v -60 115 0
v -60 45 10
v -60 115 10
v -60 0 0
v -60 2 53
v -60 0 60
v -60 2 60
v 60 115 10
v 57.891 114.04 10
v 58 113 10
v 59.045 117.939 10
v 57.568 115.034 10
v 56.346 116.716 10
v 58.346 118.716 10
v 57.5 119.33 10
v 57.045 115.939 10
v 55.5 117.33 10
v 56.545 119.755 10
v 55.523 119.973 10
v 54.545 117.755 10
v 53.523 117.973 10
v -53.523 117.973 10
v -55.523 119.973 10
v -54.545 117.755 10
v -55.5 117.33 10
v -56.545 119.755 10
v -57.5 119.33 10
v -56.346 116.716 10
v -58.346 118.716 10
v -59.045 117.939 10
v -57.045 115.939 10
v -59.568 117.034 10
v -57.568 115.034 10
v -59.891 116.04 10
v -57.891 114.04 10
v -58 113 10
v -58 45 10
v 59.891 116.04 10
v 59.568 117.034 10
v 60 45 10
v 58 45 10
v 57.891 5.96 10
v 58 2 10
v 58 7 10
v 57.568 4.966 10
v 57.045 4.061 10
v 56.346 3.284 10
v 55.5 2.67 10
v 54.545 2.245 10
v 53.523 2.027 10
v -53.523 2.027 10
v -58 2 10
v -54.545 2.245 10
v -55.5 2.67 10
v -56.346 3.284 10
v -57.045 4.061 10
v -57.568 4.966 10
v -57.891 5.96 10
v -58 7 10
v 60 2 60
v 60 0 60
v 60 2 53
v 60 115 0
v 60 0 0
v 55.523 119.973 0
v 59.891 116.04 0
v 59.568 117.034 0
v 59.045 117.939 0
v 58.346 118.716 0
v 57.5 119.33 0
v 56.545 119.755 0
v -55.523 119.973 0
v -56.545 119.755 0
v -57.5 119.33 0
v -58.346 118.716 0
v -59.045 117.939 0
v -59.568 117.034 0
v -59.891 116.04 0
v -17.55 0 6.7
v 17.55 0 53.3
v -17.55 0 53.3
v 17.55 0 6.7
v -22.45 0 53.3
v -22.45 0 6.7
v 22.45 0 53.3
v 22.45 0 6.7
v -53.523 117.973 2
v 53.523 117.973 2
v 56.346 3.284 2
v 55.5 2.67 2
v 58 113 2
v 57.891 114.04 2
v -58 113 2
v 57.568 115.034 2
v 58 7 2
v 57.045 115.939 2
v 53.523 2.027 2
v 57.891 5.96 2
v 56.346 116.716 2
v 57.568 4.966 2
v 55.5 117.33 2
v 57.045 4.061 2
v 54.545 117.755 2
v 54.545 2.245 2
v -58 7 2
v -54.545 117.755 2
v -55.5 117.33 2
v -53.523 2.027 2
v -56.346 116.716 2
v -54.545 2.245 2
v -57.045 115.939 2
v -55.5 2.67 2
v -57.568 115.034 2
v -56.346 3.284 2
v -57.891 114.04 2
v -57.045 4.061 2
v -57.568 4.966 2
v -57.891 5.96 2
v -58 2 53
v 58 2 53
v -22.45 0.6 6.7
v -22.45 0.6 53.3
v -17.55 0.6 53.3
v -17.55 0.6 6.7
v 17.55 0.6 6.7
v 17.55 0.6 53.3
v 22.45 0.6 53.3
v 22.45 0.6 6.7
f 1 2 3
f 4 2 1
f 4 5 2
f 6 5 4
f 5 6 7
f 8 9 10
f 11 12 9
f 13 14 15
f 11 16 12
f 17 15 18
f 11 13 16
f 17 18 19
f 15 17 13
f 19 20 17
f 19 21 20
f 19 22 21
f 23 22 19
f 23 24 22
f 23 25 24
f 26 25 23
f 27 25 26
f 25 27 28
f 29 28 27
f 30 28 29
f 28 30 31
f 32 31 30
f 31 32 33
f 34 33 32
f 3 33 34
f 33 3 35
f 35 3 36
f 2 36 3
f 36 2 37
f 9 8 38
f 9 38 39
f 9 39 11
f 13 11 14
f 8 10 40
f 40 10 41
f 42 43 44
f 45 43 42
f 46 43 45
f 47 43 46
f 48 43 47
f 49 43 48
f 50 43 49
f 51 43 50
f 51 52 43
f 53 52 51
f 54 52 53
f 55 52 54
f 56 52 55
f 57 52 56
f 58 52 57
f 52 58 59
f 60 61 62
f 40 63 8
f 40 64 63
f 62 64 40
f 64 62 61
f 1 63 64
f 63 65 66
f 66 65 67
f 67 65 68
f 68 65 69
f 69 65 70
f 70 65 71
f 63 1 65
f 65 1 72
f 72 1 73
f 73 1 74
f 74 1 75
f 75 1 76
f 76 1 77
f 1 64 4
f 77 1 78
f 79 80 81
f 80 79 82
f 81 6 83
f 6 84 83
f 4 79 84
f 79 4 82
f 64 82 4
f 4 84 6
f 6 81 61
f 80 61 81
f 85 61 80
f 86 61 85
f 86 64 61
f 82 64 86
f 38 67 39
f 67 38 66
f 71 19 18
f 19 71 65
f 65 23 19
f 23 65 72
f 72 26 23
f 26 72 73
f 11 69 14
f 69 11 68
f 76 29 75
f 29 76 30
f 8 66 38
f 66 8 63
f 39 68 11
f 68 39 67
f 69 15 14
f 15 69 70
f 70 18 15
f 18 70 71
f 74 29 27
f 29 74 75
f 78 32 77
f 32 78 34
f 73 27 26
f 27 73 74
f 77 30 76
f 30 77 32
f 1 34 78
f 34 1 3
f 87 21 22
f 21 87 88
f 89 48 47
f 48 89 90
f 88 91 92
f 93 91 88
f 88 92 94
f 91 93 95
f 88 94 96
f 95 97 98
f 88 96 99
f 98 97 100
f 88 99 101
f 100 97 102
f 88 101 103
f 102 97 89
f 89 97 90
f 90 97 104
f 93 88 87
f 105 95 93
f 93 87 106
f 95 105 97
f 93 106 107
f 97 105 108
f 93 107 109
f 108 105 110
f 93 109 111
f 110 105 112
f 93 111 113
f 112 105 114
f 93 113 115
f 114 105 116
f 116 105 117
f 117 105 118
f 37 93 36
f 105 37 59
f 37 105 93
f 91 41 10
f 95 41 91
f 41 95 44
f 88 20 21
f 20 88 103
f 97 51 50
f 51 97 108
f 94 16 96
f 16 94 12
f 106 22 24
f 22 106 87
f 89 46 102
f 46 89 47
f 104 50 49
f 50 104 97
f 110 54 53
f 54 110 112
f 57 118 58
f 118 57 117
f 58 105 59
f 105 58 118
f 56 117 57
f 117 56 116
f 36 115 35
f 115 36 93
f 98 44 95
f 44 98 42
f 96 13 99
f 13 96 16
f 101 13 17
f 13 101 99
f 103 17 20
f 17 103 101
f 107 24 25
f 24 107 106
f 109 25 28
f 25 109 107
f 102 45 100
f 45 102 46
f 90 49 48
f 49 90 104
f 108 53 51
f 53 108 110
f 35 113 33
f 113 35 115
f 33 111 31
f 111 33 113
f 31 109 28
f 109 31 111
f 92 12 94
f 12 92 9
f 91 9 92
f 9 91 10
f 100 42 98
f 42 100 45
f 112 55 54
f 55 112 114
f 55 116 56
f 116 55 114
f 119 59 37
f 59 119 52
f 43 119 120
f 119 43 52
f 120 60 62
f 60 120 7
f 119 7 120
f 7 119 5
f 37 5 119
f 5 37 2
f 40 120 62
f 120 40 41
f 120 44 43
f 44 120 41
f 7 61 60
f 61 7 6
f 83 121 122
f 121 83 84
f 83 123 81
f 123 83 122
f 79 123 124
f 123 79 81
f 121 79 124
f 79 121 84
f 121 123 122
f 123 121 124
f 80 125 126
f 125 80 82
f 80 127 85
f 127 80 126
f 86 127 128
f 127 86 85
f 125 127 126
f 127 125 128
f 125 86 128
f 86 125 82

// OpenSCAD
// file: IKEA Skadis v2 hook cutouts.scad
skadis_hook_width = 4.5;
skadis_hook_height = 46;
skadis_hole_spacing_width = 40; // middle to middle
cutout_tolerance_w = 0.4;
cutout_tolerance_h = 0.6;


module skadis_hook_cutout(center=false, hook_count=2) {
    
    if(center) {
        translate([-(skadis_hole_spacing_width + skadis_hook_width) / 2, 0, - skadis_hook_height / 2])
        object(hook_count);
    } else {
        object();
    }
    

}

module object(hook_count=2) {
    union() {

        // Cutout for the hook 1
        color("red")
        translate([- cutout_tolerance_w / 2, 0, - cutout_tolerance_h / 2])
        cube([skadis_hook_width + cutout_tolerance_w, 2, skadis_hook_height + cutout_tolerance_h]);

        // Cutout for the hook 2
        color("red")
        translate([- cutout_tolerance_w / 2 + skadis_hole_spacing_width, 0, - cutout_tolerance_h / 2])
        cube([skadis_hook_width + cutout_tolerance_w, 2, skadis_hook_height + cutout_tolerance_h]);

    }
}

skadis_hook_cutout(center = false);
// file: ../../../modules/scad/roundedcube.scad
// More information: https://danielupshaw.com/openscad-rounded-corners/


// Examples
// color("Yellow")
// roundedcube(3, true, 0.7, "xmin");

// translate(v = [1, 0, 2])
// color("Pink")
// roundedcube([4, 2, 2], false, 0.6, "zmax");

// translate(v = [-4, -1, 2])
// color("Lightblue")
// roundedcube(2, false);

// translate(v = [0, 0, 6])
// color("Orange")
// roundedcube([3, 2, 2], true, 0.2);

// translate(v = [2.5, -0.5, 5])
// color("Green")
// roundedcube([3, 2, 2], false, 0.4, "z");

// Set to 0.01 for higher definition curves (renders slower)
$fs = 0.15;

module roundedcube(size = [1, 1, 1], center = false, radius = 0.5, apply_to = "all") {
	// If single value, convert to [x, y, z] vector
	size = (size[0] == undef) ? [size, size, size] : size;

	translate_min = radius;
	translate_xmax = size[0] - radius;
	translate_ymax = size[1] - radius;
	translate_zmax = size[2] - radius;

	diameter = radius * 2;

	obj_translate = (center == false) ?
		[0, 0, 0] : [
			-(size[0] / 2),
			-(size[1] / 2),
			-(size[2] / 2)
		];

	translate(v = obj_translate) {
		hull() {
			for (translate_x = [translate_min, translate_xmax]) {
				x_at = (translate_x == translate_min) ? "min" : "max";
				for (translate_y = [translate_min, translate_ymax]) {
					y_at = (translate_y == translate_min) ? "min" : "max";
					for (translate_z = [translate_min, translate_zmax]) {
						z_at = (translate_z == translate_min) ? "min" : "max";

						translate(v = [translate_x, translate_y, translate_z])
						if (
							(apply_to == "all") ||
							(apply_to == "xmin" && x_at == "min") || (apply_to == "xmax" && x_at == "max") ||
							(apply_to == "ymin" && y_at == "min") || (apply_to == "ymax" && y_at == "max") ||
							(apply_to == "zmin" && z_at == "min") || (apply_to == "zmax" && z_at == "max")
						) {
							sphere(r = radius);
						} else {
							rotate = 
								(apply_to == "xmin" || apply_to == "xmax" || apply_to == "x") ? [0, 90, 0] : (
								(apply_to == "ymin" || apply_to == "ymax" || apply_to == "y") ? [90, 90, 0] :
								[0, 0, 0]
							);
							rotate(a = rotate)
							cylinder(h = diameter, r = radius, center = true);
						}
					}
				}
			}
		}
	}
}
// main file
_height = 10;
_radius = 60;
_thickness = 2;
_pen_holes_radius = 5;
_enforcements = 1;

//use <./IKEA Skadis include backwall with 3 hooks.scad>
use <../../../modules/scad/roundedcube.scad>
use <./IKEA Skadis v2 hook cutouts.scad>


// The cup holder
module cup_holder_rounded() {
    difference() {
        difference() {
            union() {
                cylinder(h = _height, r = _radius);
                color("lightgreen")
                translate([0, - _radius / 2 - 5, _height / 2])
                cube([_radius * 2, _radius + 10, _height], center = true);
            }
            translate([0, 0, _thickness])
            cylinder(h = _height, r = _radius - _thickness);

            // left pen hole
            translate([- _radius + _pen_holes_radius + _thickness + 2, - _radius + _pen_holes_radius + _thickness - 7, _thickness])
            cylinder(h = _height, r = _pen_holes_radius);

            // right pen hole
            translate([+ _radius - _pen_holes_radius - _thickness - 2, - _radius + _pen_holes_radius + _thickness - 7, _thickness])
            cylinder(h = _height, r = _pen_holes_radius);
        }
    }
}

module cup_holder_square() {
    difference() {
        difference() {
            union() {
                // cylinder(h = _height, r = _radius);
                color("lightgreen")
                translate([0, - _radius / 2 - 5, _height / 2])
                cube([_radius * 2, _radius + 10, _height], center = true);
    
                translate([-_radius, -_radius -10, 0])
                roundedcube(size = [_radius * 2, _radius * 2, _height], center = false, radius = 5, apply_to = "z");
                
            }

            translate([-_radius + _thickness, -_radius -10 + _thickness, _thickness])
            roundedcube(size = [_radius * 2 - _thickness * 2, _radius * 2 - _thickness * 2, _height], center = false, radius = 5, apply_to = "z");
            
        }
    }
}

// the triangle for the optional enforcements
module triangle(_h) {
    rotate([0, 270, 0])
    linear_extrude(_thickness)
    polygon(points=[[0,0], [_h - _thickness - 5,0], [0,_h - _thickness - 5], [0,0]]);
}

difference() {

    union() {

        // Execute cup_holder
        translate([0, _radius + 10, 0])
        cup_holder_square();

        // Add the backwall
        translate([- _radius, 0, 0])
        cube([_radius * 2, _thickness, 60]);

        if(_enforcements == 1) {
            if(_height < 40) {
                // Left enforcement
                translate([- _radius + _thickness, _thickness, _height])
                triangle(60 - _height);

                // Right enforcement
                translate([+ _radius, _thickness, _height])
                triangle(60 - _height);
            }
        }

    }
    color("red")
    translate([0, -1.4, 30])
    skadis_hook_cutout(center=true);
}
